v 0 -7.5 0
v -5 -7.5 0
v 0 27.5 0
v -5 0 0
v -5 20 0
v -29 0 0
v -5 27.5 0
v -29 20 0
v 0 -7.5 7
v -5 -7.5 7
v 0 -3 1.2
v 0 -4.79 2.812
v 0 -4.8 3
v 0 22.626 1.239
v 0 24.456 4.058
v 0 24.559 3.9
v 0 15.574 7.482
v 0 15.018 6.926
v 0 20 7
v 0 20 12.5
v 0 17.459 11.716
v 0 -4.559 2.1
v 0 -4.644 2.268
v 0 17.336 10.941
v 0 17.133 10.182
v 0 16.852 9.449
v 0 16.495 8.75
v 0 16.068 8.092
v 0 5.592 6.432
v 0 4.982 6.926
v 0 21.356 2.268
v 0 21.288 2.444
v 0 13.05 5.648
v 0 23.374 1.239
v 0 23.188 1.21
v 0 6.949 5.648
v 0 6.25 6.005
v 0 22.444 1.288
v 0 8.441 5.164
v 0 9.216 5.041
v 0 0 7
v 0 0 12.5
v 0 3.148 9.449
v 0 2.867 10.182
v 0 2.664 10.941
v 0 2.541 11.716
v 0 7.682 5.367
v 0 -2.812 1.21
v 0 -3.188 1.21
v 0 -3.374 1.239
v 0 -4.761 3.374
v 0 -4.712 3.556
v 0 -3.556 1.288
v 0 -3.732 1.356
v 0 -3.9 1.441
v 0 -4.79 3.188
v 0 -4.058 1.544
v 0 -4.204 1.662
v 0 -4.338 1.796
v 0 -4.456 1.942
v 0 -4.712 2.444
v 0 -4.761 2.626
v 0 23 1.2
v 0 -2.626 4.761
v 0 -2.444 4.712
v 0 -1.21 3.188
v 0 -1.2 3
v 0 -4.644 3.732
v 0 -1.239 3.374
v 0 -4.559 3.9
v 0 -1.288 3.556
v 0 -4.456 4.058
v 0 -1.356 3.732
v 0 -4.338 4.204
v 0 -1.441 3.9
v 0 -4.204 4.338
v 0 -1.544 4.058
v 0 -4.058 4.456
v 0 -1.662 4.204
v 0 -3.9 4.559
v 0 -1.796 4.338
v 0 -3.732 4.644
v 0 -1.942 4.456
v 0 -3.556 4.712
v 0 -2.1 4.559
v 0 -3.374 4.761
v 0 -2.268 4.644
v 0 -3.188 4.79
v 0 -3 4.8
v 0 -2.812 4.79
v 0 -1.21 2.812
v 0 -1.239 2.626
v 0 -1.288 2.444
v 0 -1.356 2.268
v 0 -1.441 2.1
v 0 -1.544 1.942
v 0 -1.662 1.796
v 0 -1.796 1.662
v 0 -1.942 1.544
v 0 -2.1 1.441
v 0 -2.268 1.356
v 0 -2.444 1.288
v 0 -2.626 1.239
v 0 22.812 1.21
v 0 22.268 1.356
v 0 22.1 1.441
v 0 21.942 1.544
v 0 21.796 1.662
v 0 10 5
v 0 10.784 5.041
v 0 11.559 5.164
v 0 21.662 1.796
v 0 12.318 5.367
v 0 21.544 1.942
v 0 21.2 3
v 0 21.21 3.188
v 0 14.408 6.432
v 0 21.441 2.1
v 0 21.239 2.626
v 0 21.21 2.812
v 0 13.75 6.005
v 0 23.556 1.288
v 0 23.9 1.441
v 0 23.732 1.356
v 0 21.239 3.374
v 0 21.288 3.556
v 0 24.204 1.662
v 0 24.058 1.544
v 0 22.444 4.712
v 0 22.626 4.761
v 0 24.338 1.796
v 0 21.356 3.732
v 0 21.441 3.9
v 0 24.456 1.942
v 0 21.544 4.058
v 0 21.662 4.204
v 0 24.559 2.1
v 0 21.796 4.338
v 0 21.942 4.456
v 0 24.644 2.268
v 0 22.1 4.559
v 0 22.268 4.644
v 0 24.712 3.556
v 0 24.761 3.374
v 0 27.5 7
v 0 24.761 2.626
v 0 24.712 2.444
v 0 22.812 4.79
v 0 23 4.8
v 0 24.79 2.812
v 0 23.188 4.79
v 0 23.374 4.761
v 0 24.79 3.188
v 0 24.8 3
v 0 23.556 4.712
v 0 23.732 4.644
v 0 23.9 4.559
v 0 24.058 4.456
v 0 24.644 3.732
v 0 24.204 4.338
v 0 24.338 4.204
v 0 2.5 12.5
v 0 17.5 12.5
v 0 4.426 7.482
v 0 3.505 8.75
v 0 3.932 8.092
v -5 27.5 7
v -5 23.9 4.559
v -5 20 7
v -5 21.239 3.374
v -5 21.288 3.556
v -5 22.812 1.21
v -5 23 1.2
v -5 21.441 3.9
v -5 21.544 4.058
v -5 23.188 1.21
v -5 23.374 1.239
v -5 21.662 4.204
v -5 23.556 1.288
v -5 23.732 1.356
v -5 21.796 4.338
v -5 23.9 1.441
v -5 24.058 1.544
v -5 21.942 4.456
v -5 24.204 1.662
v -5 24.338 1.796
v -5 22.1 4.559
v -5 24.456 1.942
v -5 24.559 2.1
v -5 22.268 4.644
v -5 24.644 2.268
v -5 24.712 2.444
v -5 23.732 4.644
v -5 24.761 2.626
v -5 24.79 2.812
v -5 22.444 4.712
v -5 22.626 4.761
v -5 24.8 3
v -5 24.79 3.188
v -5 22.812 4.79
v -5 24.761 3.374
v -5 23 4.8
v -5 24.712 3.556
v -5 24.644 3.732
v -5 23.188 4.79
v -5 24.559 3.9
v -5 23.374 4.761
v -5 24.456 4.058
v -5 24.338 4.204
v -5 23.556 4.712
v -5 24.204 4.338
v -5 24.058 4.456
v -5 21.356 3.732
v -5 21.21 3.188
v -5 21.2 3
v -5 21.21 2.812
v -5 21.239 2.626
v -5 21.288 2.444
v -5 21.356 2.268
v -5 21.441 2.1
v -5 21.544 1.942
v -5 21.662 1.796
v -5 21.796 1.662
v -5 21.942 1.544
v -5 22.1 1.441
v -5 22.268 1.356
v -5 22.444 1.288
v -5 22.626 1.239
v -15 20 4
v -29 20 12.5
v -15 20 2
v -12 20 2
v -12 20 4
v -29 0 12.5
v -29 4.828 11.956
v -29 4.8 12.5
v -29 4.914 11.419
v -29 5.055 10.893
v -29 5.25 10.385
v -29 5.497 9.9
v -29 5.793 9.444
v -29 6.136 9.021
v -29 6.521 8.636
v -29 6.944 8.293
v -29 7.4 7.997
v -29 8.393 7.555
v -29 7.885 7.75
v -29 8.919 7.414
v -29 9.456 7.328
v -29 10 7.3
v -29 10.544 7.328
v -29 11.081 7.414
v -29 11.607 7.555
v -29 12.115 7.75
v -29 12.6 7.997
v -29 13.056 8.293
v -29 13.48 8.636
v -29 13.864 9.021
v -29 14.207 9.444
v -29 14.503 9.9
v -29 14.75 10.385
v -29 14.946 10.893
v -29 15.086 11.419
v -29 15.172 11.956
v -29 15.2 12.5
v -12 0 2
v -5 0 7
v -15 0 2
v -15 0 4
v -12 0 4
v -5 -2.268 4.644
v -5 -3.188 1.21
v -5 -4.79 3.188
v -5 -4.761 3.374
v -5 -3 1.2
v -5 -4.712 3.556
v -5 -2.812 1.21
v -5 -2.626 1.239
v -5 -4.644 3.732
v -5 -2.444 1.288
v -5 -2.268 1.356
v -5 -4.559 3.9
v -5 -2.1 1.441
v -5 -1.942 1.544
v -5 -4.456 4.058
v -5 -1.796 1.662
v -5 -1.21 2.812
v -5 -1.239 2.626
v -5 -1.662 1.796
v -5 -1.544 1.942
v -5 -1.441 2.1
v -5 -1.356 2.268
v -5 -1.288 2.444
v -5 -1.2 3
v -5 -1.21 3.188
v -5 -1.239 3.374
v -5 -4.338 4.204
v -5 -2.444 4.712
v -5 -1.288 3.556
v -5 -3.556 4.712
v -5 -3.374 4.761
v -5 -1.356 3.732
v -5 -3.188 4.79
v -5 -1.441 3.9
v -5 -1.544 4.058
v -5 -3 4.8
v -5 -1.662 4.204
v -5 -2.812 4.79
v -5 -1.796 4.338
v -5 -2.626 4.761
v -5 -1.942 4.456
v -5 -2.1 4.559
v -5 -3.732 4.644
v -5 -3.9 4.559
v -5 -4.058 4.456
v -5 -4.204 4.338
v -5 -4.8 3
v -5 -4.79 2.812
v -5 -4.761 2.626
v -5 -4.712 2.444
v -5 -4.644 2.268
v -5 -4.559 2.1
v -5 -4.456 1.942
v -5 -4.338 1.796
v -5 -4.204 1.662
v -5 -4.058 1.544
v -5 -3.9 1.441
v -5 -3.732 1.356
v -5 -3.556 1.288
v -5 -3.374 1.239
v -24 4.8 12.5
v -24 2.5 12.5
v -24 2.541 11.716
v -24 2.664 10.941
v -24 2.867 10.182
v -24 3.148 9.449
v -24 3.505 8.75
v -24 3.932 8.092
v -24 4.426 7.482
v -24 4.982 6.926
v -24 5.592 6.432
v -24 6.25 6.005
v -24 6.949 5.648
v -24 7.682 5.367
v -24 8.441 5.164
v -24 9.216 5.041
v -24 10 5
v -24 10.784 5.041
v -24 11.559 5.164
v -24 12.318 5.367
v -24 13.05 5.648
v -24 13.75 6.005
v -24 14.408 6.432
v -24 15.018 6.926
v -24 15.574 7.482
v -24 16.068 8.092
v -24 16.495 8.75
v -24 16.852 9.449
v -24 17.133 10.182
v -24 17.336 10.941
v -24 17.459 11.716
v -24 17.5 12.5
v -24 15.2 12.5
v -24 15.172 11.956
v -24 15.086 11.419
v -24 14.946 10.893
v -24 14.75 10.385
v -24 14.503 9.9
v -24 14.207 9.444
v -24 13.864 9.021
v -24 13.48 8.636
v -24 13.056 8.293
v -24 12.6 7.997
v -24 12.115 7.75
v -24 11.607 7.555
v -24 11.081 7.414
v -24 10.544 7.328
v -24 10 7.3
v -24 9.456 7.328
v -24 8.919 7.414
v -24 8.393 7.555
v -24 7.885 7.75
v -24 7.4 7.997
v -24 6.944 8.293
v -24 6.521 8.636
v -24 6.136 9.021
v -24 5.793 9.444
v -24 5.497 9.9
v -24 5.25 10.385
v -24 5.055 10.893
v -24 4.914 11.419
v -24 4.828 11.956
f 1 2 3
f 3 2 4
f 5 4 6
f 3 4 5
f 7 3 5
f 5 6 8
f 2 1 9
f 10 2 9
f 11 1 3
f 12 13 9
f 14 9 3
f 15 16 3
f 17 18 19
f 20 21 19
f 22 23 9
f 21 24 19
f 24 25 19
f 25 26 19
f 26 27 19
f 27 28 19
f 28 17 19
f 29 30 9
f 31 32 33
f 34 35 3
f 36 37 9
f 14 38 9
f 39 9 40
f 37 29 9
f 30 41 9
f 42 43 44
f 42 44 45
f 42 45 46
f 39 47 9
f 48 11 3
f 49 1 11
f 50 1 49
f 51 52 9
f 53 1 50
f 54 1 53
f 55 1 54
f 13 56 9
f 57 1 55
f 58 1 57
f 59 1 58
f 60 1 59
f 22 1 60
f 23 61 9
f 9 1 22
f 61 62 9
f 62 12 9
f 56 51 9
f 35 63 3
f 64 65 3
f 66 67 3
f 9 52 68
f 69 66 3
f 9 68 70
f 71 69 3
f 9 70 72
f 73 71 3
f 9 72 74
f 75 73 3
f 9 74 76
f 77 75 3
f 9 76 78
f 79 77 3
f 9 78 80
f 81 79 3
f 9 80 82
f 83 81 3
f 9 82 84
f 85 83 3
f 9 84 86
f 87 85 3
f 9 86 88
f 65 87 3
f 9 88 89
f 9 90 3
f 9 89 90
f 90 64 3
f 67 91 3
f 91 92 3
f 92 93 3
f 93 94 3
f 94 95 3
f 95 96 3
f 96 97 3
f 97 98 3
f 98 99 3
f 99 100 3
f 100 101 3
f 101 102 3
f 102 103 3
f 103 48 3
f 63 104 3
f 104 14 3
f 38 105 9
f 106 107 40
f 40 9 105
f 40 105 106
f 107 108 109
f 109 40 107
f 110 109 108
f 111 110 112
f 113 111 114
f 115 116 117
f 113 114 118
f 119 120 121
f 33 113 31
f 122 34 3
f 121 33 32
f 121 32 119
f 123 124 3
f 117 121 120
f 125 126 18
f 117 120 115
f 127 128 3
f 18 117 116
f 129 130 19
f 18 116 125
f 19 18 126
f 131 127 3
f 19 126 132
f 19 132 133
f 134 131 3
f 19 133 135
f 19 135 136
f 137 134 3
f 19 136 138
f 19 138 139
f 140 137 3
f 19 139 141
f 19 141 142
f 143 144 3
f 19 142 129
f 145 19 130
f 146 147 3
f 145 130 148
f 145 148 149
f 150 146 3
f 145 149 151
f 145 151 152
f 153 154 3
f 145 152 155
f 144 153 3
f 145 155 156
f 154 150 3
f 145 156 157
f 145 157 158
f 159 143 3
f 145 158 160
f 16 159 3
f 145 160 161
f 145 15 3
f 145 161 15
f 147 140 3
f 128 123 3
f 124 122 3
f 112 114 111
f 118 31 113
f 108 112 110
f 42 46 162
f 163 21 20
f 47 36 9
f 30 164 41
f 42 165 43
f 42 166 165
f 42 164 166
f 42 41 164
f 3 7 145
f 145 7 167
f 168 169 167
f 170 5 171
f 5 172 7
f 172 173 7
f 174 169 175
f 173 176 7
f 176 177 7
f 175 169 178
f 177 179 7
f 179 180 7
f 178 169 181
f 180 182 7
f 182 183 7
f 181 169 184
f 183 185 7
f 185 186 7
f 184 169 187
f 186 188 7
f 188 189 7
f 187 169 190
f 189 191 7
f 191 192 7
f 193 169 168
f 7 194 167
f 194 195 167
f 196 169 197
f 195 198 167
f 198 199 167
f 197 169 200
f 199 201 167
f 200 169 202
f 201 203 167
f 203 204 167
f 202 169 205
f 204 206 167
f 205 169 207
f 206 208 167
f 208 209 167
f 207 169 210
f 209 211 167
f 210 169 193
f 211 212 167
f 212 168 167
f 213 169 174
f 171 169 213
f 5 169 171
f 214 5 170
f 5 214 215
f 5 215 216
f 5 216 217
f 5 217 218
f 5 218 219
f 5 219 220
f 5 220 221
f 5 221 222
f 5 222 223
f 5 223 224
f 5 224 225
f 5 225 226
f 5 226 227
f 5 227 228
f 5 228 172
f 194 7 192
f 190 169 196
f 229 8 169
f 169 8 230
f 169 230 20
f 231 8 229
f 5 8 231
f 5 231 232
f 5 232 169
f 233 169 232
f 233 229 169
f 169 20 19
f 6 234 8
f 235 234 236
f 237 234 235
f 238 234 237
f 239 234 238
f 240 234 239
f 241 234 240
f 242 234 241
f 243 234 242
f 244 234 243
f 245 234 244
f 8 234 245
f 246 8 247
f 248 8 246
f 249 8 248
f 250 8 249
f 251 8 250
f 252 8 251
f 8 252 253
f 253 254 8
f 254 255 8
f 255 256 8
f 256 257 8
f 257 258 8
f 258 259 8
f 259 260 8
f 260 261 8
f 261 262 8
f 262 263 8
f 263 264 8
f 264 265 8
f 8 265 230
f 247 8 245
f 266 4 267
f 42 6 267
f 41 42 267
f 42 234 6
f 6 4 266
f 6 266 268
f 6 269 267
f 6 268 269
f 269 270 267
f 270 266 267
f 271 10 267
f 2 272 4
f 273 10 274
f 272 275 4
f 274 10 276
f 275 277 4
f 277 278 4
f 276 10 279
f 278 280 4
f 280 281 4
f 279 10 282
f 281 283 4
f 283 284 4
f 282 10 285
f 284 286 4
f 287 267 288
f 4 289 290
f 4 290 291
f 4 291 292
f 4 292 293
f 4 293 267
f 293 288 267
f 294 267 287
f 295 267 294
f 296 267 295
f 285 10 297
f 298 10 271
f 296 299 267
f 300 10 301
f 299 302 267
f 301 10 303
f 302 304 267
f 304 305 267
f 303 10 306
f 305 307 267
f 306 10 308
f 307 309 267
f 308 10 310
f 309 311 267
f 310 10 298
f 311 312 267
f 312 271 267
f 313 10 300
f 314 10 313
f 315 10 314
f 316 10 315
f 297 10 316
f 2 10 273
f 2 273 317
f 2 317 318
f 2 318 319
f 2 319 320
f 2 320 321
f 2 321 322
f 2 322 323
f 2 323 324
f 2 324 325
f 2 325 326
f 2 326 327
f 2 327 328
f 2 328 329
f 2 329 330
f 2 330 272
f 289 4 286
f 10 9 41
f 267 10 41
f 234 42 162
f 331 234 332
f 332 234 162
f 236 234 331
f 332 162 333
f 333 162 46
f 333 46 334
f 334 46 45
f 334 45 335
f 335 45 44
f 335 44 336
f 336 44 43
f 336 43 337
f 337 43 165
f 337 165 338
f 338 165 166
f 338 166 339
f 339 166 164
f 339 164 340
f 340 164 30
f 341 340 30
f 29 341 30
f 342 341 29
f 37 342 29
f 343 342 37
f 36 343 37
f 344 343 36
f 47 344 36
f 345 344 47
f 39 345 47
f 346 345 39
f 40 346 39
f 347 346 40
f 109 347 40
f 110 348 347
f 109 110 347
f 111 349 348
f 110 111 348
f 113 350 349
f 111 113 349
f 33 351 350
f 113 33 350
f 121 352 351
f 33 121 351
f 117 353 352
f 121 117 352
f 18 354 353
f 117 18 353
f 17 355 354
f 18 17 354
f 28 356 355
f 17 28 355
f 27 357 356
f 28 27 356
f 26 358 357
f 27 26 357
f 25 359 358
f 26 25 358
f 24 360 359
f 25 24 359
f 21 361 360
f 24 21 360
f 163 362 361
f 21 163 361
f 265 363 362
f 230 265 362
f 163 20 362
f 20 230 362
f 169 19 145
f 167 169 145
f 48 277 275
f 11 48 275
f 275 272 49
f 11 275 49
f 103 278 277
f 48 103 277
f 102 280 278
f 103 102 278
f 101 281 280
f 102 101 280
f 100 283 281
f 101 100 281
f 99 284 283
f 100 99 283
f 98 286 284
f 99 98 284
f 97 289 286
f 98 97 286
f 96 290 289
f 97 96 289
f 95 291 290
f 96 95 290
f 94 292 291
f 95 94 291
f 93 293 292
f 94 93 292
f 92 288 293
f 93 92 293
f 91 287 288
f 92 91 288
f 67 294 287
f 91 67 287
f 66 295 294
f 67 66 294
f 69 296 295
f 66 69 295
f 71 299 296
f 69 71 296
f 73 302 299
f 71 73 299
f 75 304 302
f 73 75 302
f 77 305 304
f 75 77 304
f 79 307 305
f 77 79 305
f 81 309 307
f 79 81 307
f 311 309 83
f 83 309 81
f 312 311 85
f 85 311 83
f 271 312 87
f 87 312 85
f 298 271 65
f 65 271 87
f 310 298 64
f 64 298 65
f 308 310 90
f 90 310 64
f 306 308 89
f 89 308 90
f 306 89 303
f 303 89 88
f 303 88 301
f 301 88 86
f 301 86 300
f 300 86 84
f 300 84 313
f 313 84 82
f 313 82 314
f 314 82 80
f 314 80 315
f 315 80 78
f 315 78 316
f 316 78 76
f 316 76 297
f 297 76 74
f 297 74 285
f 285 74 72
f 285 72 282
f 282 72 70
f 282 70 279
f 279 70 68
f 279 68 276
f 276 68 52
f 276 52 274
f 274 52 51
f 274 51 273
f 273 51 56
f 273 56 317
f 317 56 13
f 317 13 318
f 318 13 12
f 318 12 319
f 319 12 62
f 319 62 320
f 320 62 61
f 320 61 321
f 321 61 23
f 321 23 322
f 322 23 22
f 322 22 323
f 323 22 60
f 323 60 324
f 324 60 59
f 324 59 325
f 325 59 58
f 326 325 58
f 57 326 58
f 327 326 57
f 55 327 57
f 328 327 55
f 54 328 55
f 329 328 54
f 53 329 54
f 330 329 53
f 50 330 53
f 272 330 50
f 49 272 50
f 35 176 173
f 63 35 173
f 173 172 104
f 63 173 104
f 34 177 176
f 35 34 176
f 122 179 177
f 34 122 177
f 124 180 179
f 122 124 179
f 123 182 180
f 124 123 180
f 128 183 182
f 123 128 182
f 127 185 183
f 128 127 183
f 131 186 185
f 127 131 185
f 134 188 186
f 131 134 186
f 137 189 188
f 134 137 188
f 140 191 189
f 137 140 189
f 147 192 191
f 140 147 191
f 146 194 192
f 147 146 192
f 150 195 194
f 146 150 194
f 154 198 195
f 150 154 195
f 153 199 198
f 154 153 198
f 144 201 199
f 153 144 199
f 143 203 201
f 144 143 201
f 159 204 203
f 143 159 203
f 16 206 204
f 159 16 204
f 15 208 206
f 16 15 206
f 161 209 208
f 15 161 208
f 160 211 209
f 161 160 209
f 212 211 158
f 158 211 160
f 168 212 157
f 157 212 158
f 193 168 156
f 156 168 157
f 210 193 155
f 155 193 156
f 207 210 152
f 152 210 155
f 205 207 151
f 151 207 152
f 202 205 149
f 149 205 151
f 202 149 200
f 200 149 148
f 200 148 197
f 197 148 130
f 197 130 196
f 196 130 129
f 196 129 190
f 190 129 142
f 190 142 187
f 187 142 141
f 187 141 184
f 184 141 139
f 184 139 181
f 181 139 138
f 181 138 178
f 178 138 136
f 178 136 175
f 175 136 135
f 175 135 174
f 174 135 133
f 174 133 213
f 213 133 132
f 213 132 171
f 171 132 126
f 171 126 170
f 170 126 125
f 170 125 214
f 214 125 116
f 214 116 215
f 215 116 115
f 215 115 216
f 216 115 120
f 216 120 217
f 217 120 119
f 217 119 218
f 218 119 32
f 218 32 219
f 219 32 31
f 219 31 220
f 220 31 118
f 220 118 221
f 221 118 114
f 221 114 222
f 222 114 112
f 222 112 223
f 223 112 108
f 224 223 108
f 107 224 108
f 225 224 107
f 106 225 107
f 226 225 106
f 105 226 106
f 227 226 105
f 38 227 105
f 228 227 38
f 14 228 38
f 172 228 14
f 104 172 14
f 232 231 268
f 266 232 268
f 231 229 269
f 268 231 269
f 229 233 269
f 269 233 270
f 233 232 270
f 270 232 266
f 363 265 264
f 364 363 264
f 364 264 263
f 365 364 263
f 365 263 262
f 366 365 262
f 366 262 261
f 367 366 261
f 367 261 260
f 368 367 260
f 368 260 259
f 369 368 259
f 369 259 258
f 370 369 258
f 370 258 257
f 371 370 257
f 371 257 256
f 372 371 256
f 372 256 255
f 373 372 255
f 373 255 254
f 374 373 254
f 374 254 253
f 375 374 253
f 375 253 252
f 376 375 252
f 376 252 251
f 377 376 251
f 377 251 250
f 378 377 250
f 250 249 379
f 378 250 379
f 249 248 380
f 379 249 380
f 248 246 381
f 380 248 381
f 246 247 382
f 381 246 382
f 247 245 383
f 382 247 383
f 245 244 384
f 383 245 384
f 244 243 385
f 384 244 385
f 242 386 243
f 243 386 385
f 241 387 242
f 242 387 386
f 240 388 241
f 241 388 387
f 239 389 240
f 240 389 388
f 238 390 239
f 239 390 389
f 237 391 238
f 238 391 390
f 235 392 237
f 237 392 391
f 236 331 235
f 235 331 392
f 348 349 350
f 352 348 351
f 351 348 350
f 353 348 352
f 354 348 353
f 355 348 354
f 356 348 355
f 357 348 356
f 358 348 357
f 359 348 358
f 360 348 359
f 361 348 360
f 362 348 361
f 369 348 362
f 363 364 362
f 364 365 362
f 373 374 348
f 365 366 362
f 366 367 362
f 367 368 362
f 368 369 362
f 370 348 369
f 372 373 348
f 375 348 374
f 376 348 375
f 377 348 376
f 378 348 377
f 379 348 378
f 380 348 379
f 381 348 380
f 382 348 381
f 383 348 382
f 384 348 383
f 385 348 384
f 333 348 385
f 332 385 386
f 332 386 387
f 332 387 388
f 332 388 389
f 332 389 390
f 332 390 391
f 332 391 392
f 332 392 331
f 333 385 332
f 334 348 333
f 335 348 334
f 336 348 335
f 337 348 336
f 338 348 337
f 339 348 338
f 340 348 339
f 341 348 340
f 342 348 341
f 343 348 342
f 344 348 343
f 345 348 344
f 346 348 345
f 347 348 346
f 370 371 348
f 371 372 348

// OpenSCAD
// file: functions.scad
// Mendel Dynamics
// Functions used in many files
// GNU GPL v3
// Emili Sapena 
// emili@bcndynamics.com
// bcndynamics.com
// http://wiki-es.bcndynamics.com/Mendel_Dynamics
// http://github.com/djemili/MendelDynamics
// http://www.reprap.org/wiki/Mendel_Dynamics

// Some functions from:
// Prusa Mendel
// GNU GPL v3
// Josef Průša
// josefprusa@me.com
// prusadjs.cz
// http://www.reprap.org/wiki/Prusa_Mendel
// http://github.com/prusajr/PrusaMendel


module nut(d,h,horizontal=true){
cornerdiameter =  (d / 2) / cos (180 / 6);
cylinder(h = h, r = cornerdiameter, $fn = 6);
if(horizontal){
for(i = [1:6]){
	rotate([0,0,60*i]) translate([-cornerdiameter-0.2,0,0]) rotate([0,0,-45]) cube(size = [2,2,h]);
}}
}

// Based on nophead research
module polyhole(d,h) {
    n = max(round(2 * d),3);
    rotate([0,0,180])
        cylinder(h = h, r = (d / 2) / cos (180 / n), $fn = n);
}




module roundcorner(diameter){
	difference(){
		cube(size = [diameter,diameter,99], center = false);
		translate(v = [diameter, diameter, 0]) cylinder(h = 100, r=diameter, center=true);
	}
}


module roundcorner(diameter){
	difference(){
		cube(size = [diameter,diameter,99], center = false);
		translate(v = [diameter, diameter, 0]) cylinder(h = 100, r=diameter, center=true, $fn=10);//no augmentar
	}
}

// This module creates the shape that needs to be substracted from a cube to make its corners rounded.
module MycreateMeniscus(h,radius,angle) 
difference(){
	translate([radius/2+0.1+30/2,radius/2+0.1,0]){
		cube([radius+0.2+30,radius+0.1+radius*sin(angle),h+0.2],center=true);         
	}
	
	cylinder(h=h+0.2,r=radius,$fn = 100,center=true);
}

//     __          __ 
//    |__|   ()   |__|
//
module Connection(sep=40)
union() {
	translate([-sep/2,0,(grosor+2)/2]) cube([10+0.1,grosor+0.1,grosor+2], center=true);
	translate([sep/2,0,(grosor+2)/2]) cube([10+0.1,grosor+0.1,grosor+2], center=true);
	cylinder(h=grosor+2, r=m3_diameter/2, $fn=fnfn);
}

// without m3 hole
//     __          __
//    |__|        |__|
//

module ConnectionNC(sep=40)
union() {
	translate([-sep/2,0,(grosor+2)/2]) cube([10+0.1,grosor+0.1,grosor+2], center=true);
	translate([sep/2,0,(grosor+2)/2]) cube([10+0.1,grosor+0.1,grosor+2], center=true);
}

//     __          __ 
//  __|  |________|  |__
//           
module ConnectionOut(sep=40)
union() {
	translate([-sep/2,grosor/2,grosor/2]) cube([10,grosor,grosor], center=true);
	translate([sep/2,grosor/2,grosor/2]) cube([10,grosor,grosor], center=true);
}

//     __          __ 
//  __|  |___  ___|  |__
//           ||           
//           ++

module BoltHole(canal=true)
union() {
	if (canal) {
		translate([0,-5,(grosor+2)/2-1]) cube([m3_diameter,21,grosor+2], center=true);
	}
	translate([0,-10,(grosor+2)/2-1]) cube([m3_nut_diameter_horizontal,3,grosor+2], center=true);
}


module M3hole(hex=0) {
	
	if (hex) {
		cylinder(h=grosor+2,r=m3_nut_diameter_horizontal/2+0.5, $fn=6);
	}
	else {
		cylinder(h=grosor+2,r=m3_diameter/2, $fn=fnfn);
	}
}

//Hole for Bearing 608
module b608(h=8)
{
	translate([0,0,h/2]) cylinder(r=hole_for_608/2,h=h,center=true,$fn=fnfn);
}


module M8hole(h=8)
{
	translate([0,0,h/2]) cylinder(r=m8_hole/2,h=h,center=true,$fn=fnfn);
}

module motor()
{
	union() {
		cube([l_motor,a_motor,a_motor]);
		translate([-20,a_motor/2,a_motor/2])
		rotate([0,90,0]) cylinder(h=20,r=2.5);
	}
}

// nema 17 holes
module MotorHoles()
{
	translate([motor_h_sep/2, motor_h_sep/2, 0]) M3hole();
	translate([motor_h_sep/2, -motor_h_sep/2, 0]) M3hole();
	translate([-motor_h_sep/2, motor_h_sep/2, 0]) M3hole();
	translate([-motor_h_sep/2, -motor_h_sep/2, 0]) M3hole();
	translate(v=[0,0,0]) cylinder(r=26/2, h=grosor+2, $fn=fnfn);
}
// file: constants.scad
// Mendel Dynamics
// Constant values used in many files
// GNU GPL v3
// Emili Sapena 
// emili@bcndynamics.com
// bcndynamics.com
// http://wiki-es.bcndynamics.com/Mendel_Dynamics
// http://github.com/djemili/MendelDynamics
// http://www.reprap.org/wiki/Mendel_Dynamics

//DEBUG
//fnfn=10;

//RENDER
fnfn=60;


// Plates' thickness
grosor=5;

threaded_rod_diameter = 8.7;
m3_diameter = 3.6;
m3_nut_diameter = 5.3;
m3_nut_diameter_horizontal = 6.1;

m8_clearance_hole=8.8;
m8_hole=8.4;
hole_for_608=22.3;
608_diameter=22;
pulley_diameter=10; //TODO

hole_separation=58.5; //from Prusa's frame vertex
xbars_separation=50;
hotend_hole_sep=30;
xventilador=10; //TODO
l_motor=50; // 47 mesurat per mi! deixem 50 per si hi ha motors mes llargs
a_motor=42.4; //mesurat per mi!
motor_h_sep=31;

pla_diam=3;
teflon_diam=16.3;

bushing_holes_dist=28;
rod_clamp_holes_dist=15;
belt_clamp_holes_dist=18;

//Recheck these values:
ramps_holes_a=48;
ramps_holes_b=82.5;
ramps_holes_c=75;

lme8uu=false;
lm8uu_diameter=(lme8uu==true) ? 16 : 15;
lm8uu_length=(lme8uu==true) ? 25 : 24;
lm8uu_radius = lm8uu_diameter / 2;
block_height = 2*lm8uu_length+17;

//==================================


// Triangles
marge_llarg=75;
marge_curt=10;
lateral=320+marge_llarg*2;
altura=lateral*sin(60);

//y_off=7*8.65;
y_off=60;
ample_z=100;
marge_z=20;
offset_z=20; //eleva inici del forat eix z
altura_z=(lateral-(ample_z/2+marge_z)/cos(60))*sin(60)-marge_z-offset_z;


// Lamines base i frontal

llarg_base=234;
curt_base=80;
llarg_front=llarg_base+40;

// Safata
distC_safata=210;
distV_safata=140;
distB_safata=40;
dist_belt=18;
ample_safata=220;
llarg_safata=220;
dist_bushing=28;

ample_total=410; //distancia entre centres de varilles llises Z
// z_motor
llarg_zm=(ample_total-llarg_base-grosor*2)/2 + 20;
//llarg_zm=100;
ample_zm=hole_separation+m8_clearance_hole*2+10;
zdist=30;

//extruder
x_motor_ex=xventilador+10+hotend_hole_sep/2+10;
y_motor_ex=10;
hotend_rotation=90; 
llarg_ex=xventilador+hotend_hole_sep+l_motor+30;
ample_ex=xbars_separation+m8_clearance_hole*2+10;

//xend
ample_xe=ample_ex;
llarg_xe=zdist+40;


//y motor
llarg_ym=hole_separation+threaded_rod_diameter+20;

//alt
ample_ym=a_motor+10;

//x carriage
llarg_xc=105;
ample_xc=xbars_separation+bushing_holes_dist+10;
// file: metric.scad
// PRUSA iteration3
// Default metric sizes
// GNU GPL v3
// Josef Průša <josefprusa@me.com>
// http://www.reprap.org/wiki/Prusa_Mendel
// http://github.com/prusajr/PrusaMendel

// DONT CHANGE THIS FILE! ALTER VALUES IN CONFIGURATION.SCAD INSTEAD

// RODS

threaded_rod_diameter = 8.7;
threaded_rod_diameter_horizontal = 9;
smooth_bar_diameter = 8;
smooth_bar_diameter_horizontal = 8.5;
smooth_big_bar_diameter_horizontal = 10.8;

// Nuts and bolts


m8_diameter = 9;
//iso4032 says Width across corners = 14.38
m8_nut_diameter = 14.1;

m4_diameter = 4.7;
//iso4032 says 7.66
m4_nut_diameter = 7.6;
m4_nut_diameter_horizontal = 8.15;

m3_diameter = 3.4;
//iso4032 says 6.01
m3_nut_diameter = 5.3;
m3_nut_diameter_horizontal = 6.8;
m3_washer_diameter = 6.9;

// Motors

motor_shaft = 5.5;
// file: configuration.scad
// PRUSA Mendel  
// Configuration file
// GNU GPL v3
// Josef Průša
// josefprusa@me.com
// prusadjs.cz
// http://www.reprap.org/wiki/Prusa_Mendel
// http://github.com/prusajr/PrusaMendel

// PLEASE SELECT ONE OF THE CONFIGURATIONS BELOW
// BY UN-COMMENTING IT

// Uncomment for metric settings
// METRIC METRIC METRIC METRIC METRIC METRIC METRIC METRIC 

include <metric.scad>;
include <constants.scad>

// CUSTOM CUSTOM CUSTOM CUSTOM CUSTOM CUSTOM CUSTOM CUSTOM CUSTOM

thin_wall = 3;


// Linear bearing version
linear = false;
// set false for LM-8UU, true for LM-E-8UU (ignore if linear is set to false)
lme8uu = false;



// CHANGE ONLY THE STUFF YOU KNOW
// IT WILL REPLACE DEFAULT SETTING

// RODS

// threaded_rod_diameter = 0;
// threaded_rod_diameter_horizontal = 0;
// smooth_bar_diameter = 0;
// smooth_bar_diameter_horizontal = 0;

// Nuts and bolts

// m8_diameter = 0;
// m8_nut_diameter = 0;

// m4_diameter = 0;
// m4_nut_diameter = 0;

// m3_diameter = 0;
// m3_nut_diameter = 0;

// Bushing holder

// bushing_core_diameter = smooth_bar_diameter;
// bushing_material_thickness = 0;


///counted stuff
m3_nut_diameter_bigger = ((m3_nut_diameter  / 2) / cos (180 / 6))*2;

// functions 
include <functions.scad>
// main file
// Mendel Dynamics 
// Z bushing
// GNU GPL v3
// Emili Sapena 
// emili@bcndynamics.com
// bcndynamics.com
// http://wiki-es.bcndynamics.com/Mendel_Dynamics
// http://github.com/djemili/MendelDynamics
// http://www.reprap.org/wiki/Mendel_Dynamics


include <configuration.scad>
include <bushing.scad>

/**
 * @id z-bushing
 * @name Z bushing
 * @category Printed
 * @using 4 m3washer
 * @using 2 m3x15xhex
 * @using 2 m3nut
 */

module z_bushing(){
	difference(){
		union() {
			cube([lm8uu_diameter/2+5, lm8uu_diameter+5, lm8uu_length+5]);
			translate([0,-7.5,0]) cube([7,35,5]);
		}
		
		translate([lm8uu_diameter/2+5,(lm8uu_diameter+5)/2, -1]) cylinder(r=lm8uu_diameter/2,h=lm8uu_length+1,$fn=fnfn);
		translate([lm8uu_diameter/2+5,(lm8uu_diameter+5)/2, -1+(lm8uu_length+7/2)]) cylinder(r=1+(m8_hole/2),h=lm8uu_length+7,center=true,$fn=fnfn); //M8hole(lm8uu_length+7); // cylinder(r=lm8uu_diameter/2,h=lm8uu_length+7,$fn=fnfn);

		translate([lm8uu_diameter/2-4.5,(lm8uu_diameter+5)/2-26/2,-1]) cylinder(h=10,r=m3_diameter/2, $fn=fnfn);
		translate([lm8uu_diameter/2-4.5,(lm8uu_diameter+5)/2+26/2,-1]) cylinder(h=10,r=m3_diameter/2, $fn=fnfn);
		
		//brides
		translate([2, -1, lm8uu_length/2]) cube([2,lm8uu_diameter+7,3]);
	}
	
}

rotate([0,-90,0]) z_bushing();
